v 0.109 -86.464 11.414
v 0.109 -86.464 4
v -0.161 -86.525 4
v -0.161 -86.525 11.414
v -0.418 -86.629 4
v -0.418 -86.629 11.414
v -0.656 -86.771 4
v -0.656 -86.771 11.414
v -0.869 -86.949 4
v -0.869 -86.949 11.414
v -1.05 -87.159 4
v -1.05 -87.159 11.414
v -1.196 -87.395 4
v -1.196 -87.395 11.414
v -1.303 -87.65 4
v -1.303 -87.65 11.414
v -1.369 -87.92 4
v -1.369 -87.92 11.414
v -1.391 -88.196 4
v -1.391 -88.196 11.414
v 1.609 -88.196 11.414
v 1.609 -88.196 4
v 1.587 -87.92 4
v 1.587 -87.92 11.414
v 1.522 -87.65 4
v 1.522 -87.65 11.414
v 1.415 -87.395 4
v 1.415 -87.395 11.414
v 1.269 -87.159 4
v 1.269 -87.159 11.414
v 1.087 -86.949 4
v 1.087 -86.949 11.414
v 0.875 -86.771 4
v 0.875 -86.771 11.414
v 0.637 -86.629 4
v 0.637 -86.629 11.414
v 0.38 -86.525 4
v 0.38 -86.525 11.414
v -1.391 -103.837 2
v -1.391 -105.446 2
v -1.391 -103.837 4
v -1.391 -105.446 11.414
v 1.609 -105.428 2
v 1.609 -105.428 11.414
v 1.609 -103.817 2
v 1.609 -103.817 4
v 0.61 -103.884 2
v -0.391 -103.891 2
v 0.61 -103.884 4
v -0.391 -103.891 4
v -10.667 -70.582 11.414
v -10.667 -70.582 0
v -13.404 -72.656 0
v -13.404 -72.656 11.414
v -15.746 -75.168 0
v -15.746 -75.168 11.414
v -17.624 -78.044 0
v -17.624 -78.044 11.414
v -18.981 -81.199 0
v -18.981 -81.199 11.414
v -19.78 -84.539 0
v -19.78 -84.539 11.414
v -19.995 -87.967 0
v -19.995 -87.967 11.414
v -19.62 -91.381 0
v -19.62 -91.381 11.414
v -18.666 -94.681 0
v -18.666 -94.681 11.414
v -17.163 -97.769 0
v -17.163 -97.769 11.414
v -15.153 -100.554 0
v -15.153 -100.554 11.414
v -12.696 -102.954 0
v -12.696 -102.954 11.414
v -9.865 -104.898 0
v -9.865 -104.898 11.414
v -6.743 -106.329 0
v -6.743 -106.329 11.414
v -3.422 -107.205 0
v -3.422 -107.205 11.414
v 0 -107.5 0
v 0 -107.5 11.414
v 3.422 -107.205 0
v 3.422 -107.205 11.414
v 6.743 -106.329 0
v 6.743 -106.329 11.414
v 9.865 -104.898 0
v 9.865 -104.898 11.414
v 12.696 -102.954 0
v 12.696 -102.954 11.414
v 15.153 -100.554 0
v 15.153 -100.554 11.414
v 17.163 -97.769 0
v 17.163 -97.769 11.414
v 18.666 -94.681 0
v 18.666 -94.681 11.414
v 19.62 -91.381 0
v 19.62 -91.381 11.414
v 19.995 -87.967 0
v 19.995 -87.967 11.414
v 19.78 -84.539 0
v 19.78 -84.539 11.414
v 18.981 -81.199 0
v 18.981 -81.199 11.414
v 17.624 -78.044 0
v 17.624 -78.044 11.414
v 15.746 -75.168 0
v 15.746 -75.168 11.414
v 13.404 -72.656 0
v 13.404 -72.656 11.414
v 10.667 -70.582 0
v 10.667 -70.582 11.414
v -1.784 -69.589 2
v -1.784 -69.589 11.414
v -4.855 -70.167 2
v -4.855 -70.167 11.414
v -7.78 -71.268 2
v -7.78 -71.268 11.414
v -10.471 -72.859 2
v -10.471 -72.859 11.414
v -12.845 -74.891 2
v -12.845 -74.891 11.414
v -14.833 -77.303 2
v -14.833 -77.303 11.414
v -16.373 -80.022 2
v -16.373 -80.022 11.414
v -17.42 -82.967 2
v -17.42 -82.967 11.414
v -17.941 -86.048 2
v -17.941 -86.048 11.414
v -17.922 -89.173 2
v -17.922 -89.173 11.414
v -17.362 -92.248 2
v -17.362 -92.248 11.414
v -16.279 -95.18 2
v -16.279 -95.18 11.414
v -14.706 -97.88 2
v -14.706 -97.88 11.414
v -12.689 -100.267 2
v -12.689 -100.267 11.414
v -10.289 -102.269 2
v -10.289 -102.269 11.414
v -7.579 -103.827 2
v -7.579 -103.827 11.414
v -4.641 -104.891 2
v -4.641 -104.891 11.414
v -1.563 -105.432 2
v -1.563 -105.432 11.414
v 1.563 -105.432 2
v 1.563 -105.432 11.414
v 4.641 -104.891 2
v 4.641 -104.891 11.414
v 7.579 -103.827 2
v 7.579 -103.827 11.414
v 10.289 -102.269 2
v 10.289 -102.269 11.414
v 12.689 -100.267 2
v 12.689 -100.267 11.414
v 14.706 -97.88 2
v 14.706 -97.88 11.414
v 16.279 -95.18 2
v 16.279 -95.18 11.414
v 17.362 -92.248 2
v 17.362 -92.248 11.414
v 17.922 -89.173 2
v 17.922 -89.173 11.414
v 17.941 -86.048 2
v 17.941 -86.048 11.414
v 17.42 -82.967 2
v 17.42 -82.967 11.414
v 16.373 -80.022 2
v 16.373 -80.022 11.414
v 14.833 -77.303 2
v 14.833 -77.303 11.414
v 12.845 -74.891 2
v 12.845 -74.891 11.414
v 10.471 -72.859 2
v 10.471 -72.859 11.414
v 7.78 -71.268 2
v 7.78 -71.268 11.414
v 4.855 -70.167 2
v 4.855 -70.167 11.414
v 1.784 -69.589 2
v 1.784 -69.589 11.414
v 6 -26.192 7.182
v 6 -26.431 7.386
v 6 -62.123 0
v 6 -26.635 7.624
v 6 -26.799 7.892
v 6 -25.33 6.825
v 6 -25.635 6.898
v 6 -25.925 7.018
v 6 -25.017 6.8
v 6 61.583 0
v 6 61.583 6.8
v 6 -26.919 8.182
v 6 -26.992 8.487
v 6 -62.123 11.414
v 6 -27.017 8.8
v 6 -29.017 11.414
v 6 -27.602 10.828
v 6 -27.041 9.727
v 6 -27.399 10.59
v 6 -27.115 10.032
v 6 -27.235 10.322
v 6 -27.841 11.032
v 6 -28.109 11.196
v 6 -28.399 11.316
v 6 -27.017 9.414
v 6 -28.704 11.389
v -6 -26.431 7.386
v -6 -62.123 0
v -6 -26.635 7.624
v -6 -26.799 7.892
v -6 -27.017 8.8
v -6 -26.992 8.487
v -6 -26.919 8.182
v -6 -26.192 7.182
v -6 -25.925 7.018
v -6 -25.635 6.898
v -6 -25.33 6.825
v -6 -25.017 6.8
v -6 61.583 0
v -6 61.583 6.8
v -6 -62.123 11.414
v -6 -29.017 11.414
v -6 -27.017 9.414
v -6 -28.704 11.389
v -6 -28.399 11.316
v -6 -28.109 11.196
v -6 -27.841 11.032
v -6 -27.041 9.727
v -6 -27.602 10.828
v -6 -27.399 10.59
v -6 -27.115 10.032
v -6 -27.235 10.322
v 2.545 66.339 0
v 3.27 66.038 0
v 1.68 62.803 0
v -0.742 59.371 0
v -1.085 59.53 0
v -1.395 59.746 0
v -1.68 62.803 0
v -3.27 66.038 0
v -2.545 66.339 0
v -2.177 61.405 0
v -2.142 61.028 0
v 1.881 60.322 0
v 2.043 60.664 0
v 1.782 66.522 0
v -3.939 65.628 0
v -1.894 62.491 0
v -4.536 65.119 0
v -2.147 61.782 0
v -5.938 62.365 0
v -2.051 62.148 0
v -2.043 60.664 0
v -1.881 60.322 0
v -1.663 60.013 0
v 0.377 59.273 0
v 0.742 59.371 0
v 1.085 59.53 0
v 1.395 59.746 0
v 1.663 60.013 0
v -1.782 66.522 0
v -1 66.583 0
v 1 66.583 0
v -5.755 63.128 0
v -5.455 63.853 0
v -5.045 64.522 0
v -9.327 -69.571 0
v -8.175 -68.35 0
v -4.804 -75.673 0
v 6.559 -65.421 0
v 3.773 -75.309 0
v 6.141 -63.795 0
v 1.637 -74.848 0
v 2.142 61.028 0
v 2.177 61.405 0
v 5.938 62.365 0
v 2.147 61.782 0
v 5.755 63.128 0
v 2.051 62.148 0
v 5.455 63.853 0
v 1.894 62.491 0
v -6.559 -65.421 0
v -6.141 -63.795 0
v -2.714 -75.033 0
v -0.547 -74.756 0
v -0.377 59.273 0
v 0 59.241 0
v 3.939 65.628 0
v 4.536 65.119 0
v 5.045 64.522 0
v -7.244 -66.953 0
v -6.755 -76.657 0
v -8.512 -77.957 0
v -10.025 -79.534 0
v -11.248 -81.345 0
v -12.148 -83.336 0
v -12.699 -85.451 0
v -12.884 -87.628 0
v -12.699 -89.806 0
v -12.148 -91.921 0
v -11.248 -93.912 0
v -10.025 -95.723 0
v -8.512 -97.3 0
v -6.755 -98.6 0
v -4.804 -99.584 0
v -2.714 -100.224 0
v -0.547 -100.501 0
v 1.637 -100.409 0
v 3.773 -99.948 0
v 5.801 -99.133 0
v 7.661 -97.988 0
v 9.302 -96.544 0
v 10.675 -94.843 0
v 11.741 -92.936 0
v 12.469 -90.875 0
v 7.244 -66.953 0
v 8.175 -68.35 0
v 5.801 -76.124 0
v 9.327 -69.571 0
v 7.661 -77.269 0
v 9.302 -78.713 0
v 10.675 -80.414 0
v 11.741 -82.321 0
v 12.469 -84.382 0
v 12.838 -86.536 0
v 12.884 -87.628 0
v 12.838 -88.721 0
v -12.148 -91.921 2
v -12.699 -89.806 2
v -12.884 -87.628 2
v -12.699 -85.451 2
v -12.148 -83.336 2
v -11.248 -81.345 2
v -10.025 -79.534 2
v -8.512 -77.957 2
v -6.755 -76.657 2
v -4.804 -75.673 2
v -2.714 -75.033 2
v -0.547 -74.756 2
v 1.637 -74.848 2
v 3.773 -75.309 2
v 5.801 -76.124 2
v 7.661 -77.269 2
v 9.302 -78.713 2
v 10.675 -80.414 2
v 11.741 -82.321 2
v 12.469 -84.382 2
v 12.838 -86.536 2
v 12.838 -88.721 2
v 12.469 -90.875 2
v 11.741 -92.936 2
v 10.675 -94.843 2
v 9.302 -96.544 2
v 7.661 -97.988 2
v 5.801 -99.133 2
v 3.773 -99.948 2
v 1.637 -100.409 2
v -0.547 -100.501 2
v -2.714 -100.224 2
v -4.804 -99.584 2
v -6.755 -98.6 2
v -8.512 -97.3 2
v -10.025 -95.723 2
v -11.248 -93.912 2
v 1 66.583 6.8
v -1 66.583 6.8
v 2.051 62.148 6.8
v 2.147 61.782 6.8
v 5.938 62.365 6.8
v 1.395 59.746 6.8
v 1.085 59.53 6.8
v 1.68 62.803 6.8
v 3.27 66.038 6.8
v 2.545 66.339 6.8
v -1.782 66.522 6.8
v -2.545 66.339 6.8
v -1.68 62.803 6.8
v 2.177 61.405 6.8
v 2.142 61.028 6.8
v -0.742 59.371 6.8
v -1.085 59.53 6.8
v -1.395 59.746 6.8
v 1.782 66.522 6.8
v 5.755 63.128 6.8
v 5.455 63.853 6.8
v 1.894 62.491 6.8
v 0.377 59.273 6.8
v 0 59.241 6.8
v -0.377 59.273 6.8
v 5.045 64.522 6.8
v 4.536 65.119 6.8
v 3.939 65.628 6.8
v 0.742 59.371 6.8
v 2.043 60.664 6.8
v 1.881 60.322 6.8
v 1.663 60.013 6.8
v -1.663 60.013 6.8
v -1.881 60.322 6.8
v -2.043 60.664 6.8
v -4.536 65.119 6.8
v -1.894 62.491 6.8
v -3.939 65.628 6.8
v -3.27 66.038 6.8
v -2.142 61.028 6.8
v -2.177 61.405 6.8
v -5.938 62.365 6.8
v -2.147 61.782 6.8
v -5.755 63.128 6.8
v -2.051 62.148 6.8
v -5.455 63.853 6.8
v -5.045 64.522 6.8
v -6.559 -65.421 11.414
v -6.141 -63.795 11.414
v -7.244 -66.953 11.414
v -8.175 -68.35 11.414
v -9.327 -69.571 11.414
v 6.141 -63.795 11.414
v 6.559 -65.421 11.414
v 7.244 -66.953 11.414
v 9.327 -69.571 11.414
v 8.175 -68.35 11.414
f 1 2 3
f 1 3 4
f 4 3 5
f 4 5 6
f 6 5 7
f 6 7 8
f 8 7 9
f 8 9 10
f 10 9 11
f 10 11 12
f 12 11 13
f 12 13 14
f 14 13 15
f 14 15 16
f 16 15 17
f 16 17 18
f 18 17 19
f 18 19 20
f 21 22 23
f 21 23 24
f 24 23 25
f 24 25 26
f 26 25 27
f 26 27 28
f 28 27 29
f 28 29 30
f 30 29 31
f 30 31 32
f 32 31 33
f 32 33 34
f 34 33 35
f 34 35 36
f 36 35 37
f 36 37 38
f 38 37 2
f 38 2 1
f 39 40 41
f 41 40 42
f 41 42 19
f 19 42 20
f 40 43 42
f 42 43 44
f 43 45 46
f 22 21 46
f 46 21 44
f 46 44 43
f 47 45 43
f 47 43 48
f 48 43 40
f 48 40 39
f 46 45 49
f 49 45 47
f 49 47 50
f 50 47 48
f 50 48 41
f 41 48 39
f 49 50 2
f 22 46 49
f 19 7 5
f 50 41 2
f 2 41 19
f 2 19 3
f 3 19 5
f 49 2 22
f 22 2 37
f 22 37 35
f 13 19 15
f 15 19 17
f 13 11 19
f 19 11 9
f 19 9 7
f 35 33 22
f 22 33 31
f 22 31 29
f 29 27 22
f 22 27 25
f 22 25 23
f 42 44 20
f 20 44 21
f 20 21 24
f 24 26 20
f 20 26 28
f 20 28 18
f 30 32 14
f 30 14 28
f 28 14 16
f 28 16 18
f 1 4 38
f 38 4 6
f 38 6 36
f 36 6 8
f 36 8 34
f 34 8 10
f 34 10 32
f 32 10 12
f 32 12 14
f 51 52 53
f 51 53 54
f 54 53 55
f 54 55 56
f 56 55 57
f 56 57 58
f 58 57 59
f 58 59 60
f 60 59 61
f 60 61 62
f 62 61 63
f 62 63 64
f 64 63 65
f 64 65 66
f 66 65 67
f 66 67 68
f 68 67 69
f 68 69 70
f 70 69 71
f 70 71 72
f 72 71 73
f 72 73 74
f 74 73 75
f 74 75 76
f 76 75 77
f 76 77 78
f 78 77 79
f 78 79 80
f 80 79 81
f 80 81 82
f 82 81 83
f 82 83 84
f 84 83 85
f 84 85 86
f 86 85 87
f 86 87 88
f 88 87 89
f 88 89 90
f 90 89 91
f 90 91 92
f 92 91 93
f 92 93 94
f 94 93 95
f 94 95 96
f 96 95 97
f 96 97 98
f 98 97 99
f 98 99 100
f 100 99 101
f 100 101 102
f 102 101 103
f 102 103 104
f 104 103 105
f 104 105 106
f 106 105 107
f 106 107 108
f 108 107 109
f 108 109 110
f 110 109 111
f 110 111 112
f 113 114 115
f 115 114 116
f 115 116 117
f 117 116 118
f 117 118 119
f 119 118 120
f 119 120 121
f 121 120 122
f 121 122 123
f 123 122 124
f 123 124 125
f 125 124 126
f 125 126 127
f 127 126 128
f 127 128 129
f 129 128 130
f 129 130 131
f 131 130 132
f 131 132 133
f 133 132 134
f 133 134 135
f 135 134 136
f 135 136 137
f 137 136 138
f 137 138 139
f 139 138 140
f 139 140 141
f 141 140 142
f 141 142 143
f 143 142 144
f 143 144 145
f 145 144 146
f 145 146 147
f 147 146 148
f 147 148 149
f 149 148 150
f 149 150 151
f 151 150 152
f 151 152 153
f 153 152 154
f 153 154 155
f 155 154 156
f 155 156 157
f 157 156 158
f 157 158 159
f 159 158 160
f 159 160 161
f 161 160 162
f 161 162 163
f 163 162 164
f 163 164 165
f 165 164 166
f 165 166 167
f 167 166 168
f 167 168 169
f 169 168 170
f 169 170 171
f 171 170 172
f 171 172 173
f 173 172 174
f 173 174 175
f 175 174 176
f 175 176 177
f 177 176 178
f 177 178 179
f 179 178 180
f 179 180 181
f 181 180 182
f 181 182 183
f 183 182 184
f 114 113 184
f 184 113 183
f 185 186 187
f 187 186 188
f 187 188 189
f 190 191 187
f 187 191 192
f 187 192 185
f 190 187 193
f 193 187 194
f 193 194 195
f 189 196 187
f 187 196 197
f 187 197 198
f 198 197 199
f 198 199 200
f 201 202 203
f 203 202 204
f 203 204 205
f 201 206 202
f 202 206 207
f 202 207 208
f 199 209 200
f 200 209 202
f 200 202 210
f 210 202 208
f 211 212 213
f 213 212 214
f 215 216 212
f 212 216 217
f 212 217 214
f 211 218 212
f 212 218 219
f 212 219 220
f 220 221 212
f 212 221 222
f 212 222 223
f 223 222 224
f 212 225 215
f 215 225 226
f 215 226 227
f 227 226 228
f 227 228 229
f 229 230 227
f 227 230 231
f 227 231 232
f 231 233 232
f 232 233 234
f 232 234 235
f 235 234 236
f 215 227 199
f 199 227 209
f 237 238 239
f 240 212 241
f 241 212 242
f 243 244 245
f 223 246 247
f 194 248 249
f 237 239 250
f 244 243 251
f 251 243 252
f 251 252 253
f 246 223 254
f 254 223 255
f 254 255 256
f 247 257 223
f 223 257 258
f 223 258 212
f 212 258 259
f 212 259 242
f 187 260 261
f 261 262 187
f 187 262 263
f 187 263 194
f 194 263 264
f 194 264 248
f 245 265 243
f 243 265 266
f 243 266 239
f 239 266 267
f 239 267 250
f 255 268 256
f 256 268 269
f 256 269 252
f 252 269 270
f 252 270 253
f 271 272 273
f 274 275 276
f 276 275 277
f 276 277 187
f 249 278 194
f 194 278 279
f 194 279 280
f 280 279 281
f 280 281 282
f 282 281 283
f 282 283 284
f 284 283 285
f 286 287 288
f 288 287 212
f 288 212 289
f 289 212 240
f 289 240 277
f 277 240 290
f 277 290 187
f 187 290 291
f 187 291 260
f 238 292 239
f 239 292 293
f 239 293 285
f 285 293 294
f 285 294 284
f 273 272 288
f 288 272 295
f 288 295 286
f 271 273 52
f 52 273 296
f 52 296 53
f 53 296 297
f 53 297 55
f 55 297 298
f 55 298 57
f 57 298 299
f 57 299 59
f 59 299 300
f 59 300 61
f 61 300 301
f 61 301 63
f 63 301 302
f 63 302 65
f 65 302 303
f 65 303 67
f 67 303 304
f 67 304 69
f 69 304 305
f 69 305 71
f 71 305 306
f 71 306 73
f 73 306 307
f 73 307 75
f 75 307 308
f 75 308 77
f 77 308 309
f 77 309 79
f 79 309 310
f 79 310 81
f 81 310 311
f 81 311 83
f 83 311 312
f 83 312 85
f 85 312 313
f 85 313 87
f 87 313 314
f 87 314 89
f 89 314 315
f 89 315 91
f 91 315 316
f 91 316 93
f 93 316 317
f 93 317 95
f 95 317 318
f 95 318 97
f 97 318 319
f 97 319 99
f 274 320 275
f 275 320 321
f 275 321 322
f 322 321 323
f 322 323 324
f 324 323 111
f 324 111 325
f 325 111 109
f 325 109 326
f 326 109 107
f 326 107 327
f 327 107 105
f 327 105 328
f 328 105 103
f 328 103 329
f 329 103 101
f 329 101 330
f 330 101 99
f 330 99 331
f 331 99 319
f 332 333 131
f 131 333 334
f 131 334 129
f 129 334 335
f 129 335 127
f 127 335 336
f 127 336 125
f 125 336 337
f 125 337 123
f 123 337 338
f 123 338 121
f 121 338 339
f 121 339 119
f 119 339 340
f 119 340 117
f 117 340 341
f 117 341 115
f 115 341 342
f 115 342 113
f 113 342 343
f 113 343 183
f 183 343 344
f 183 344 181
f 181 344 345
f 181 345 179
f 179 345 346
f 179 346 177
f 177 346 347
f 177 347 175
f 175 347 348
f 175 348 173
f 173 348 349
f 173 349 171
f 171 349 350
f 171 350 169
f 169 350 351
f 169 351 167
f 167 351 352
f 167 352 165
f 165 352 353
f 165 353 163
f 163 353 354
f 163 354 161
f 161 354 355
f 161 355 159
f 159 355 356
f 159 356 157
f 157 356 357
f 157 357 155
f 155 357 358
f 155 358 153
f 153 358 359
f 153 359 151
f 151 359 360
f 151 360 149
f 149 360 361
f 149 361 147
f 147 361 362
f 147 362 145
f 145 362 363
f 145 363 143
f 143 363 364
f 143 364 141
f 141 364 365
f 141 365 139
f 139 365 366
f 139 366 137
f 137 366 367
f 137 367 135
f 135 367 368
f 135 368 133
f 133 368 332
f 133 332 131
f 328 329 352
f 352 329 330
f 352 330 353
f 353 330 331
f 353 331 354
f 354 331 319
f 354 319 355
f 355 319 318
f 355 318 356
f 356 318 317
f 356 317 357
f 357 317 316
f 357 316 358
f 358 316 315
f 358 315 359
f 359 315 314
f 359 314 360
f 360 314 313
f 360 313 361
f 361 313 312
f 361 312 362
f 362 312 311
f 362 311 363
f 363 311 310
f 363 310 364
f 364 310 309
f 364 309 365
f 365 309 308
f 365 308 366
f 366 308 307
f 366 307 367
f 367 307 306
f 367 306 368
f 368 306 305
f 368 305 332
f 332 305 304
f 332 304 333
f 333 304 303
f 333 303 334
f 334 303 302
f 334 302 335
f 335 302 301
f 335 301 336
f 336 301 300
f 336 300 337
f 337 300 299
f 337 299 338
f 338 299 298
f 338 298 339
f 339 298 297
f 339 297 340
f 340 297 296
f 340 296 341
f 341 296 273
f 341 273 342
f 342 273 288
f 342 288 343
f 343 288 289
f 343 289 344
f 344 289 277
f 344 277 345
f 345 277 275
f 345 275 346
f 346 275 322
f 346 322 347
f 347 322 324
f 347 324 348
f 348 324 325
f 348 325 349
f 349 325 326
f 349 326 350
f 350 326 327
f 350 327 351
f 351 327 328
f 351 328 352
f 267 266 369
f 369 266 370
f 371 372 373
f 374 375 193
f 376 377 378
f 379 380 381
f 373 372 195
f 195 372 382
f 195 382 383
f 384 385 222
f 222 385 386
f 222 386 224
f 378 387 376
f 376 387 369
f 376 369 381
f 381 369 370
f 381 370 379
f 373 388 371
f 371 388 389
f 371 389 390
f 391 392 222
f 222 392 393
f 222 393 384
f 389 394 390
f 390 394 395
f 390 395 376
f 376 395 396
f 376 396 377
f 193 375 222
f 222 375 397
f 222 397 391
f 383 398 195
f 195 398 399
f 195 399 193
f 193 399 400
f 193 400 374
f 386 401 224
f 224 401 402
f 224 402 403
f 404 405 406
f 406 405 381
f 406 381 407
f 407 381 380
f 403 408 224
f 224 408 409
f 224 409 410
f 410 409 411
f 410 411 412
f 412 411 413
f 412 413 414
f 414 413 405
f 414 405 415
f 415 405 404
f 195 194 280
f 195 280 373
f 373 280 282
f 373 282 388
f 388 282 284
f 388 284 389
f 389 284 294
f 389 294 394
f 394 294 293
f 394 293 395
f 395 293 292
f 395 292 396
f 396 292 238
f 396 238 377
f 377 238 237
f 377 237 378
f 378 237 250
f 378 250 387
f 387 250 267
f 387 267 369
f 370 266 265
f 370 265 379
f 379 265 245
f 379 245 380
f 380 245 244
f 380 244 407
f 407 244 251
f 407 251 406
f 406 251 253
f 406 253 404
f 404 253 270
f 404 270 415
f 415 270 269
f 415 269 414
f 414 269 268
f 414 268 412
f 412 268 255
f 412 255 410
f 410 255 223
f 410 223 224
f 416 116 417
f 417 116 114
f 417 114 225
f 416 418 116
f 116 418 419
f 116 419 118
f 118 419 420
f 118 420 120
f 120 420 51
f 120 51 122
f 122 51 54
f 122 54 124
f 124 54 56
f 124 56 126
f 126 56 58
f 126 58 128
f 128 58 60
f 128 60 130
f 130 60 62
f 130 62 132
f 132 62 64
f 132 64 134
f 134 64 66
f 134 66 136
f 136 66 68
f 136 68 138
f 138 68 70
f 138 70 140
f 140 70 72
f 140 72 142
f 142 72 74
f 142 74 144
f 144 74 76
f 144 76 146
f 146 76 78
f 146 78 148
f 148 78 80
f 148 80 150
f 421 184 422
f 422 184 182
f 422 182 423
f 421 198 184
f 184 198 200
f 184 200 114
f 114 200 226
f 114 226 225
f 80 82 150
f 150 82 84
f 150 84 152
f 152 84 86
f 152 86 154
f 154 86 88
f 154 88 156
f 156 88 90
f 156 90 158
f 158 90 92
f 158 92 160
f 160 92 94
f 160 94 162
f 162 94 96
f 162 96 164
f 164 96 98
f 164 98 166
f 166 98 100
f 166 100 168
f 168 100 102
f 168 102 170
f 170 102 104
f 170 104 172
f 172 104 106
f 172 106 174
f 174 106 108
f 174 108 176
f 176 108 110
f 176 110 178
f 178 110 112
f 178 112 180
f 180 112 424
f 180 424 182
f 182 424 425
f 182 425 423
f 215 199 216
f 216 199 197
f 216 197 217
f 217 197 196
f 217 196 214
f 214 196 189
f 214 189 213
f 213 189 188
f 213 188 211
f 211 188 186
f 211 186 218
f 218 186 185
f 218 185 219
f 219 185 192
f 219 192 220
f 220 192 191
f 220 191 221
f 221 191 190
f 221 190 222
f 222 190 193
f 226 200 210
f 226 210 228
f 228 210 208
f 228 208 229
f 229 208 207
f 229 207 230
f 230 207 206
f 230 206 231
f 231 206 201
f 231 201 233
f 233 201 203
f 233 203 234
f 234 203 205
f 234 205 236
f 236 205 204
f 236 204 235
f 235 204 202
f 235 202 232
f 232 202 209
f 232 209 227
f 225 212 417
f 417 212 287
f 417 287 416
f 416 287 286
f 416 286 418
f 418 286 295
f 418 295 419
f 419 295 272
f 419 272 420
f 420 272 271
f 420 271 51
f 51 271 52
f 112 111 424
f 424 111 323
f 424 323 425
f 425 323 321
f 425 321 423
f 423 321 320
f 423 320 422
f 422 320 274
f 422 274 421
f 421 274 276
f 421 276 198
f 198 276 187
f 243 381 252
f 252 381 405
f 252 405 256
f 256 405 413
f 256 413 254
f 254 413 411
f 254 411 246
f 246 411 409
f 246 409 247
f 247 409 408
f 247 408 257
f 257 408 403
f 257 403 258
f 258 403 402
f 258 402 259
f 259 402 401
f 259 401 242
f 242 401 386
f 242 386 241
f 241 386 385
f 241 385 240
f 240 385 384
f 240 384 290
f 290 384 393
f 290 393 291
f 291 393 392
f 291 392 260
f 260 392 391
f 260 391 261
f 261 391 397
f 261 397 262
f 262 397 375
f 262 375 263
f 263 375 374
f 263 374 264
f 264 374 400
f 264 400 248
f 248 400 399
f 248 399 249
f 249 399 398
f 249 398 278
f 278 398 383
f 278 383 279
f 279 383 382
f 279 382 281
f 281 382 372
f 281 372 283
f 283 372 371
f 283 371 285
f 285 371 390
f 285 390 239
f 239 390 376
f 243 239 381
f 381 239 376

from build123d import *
from build123d.topology import SkipClean

# Parameters (mm, degrees)
BOSS_EXTRUDE1_DEPTH      = 13
BOSS_EXTRUDE1_2_DEPTH    = 13
BOSS_EXTRUDE2_DEPTH      = 13
CUT_EXTRUDE1_DEPTH       = 13
SKETCH3_W                = 6.626848164
SKETCH3_H                = 19.420298156
CUT_EXTRUDE2_DEPTH       = 13
FILLET1_R                = 10
SKETCH4_R                = 20
BOSS_EXTRUDE3_DEPTH      = 13
CUT_EXTRUDE3_DEPTH       = 13
SKETCH6_R                = 18
CUT_EXTRUDE4_DEPTH       = 24
BOSS_EXTRUDE7_DEPTH      = 22
FILLET5_R                = 1.75
FILLET6_R                = 20
SKETCH13_W               = 6.626848164
SKETCH13_H               = 84.326545424
CUT_EXTRUDE8_DEPTH       = 22
FILLET8_R                = 21.5
FILLET9_R                = 21.5
SKETCH14_W               = 17.060891399
SKETCH14_H               = 46.716771418
CUT_EXTRUDE10_DEPTH      = 22
SKETCH23_R               = 16.395826628
CUT_EXTRUDE14_DEPTH      = 4
BOSS_EXTRUDE16_DEPTH     = 2
SKETCH25_R               = 20.128500803
CUT_EXTRUDE15_DEPTH      = 9
SKETCH26_W               = 8.848519257
SKETCH26_H               = 26
CUT_EXTRUDE16_DEPTH      = 9
CUT_EXTRUDE17_DEPTH      = 9
FILLET21_R               = 3.5
SKETCH28_W               = 12
SKETCH28_H               = 42.572003563
BOSS_EXTRUDE20_DEPTH     = 15.8
BOSS_EXTRUDE21_START     = -6.8
SKETCH30_W               = 12
SKETCH30_H               = 93.599870645
BOSS_EXTRUDE21_DEPTH     = 6.8
FILLET23_R               = 5
BOSS_EXTRUDE22_DEPTH     = 6.8
CUT_EXTRUDE18_DEPTH      = 29
CUT_EXTRUDE18_DEPTH_BACK = 41
SKETCH34_W               = 5.585914081
SKETCH34_H               = 80.48337208
FILLET27_R               = 2
FILLET28_R               = 10
BOSS_EXTRUDE24_DEPTH     = 6.8


with BuildPart() as part:
    # Sketch1 → Boss-Extrude1 (new body)
    with BuildSketch(Plane.XY):
        with BuildLine():
            Line((4, -87.5), (-4, -87.5))
            Line((-4, -87.5), (-4, -67.904082058))
            ThreePointArc((-4, -67.904082058), (0, -107.5), (4, -67.904082058))
            Line((4, -67.904082058), (4, -87.5))
        make_face()
    extrude(amount=BOSS_EXTRUDE1_DEPTH)



with BuildPart() as body_2:
    # Sketch1 → Boss-Extrude1 2 (new body)
    with BuildSketch(Plane.XY):
        with BuildLine():
            Line((-4, 87.5), (-4, -67.904082058))
            ThreePointArc((-4, -67.904082058), (0, -67.5), (4, -67.904082058))
            Line((4, -67.904082058), (4, 87.5))
            ThreePointArc((4, 87.5), (0, 91.5), (-4, 87.5))
        make_face()
    extrude(amount=BOSS_EXTRUDE1_2_DEPTH)


with BuildPart() as part_1:
    add(part.part)

    add(body_2.part)  # Boss-Extrude2 merges body 2
    # Sketch1<3> → Boss-Extrude2 (add)
    with BuildSketch(Plane.XY):
        with BuildLine():
            Line((-4, -67.904082058), (-4, -87.5))
            Line((-4, -87.5), (4, -87.5))
            Line((4, -87.5), (4, -67.904082058))
            ThreePointArc((4, -67.904082058), (0, -67.5), (-4, -67.904082058))
        make_face()
        with BuildLine():
            Line((4, -87.5), (-4, -87.5))
            Line((-4, -87.5), (-4, -67.904082058))
            ThreePointArc((-4, -67.904082058), (-12.649110641, -102.991933385), (20, -87.5))
            ThreePointArc((20, -87.5), (15.491933385, -74.850889359), (4, -67.904082058))
            Line((4, -67.904082058), (4, -87.5))
        make_face()
    extrude(amount=BOSS_EXTRUDE2_DEPTH)

    # Sketch2 → Cut-Extrude1 (cut)
    with BuildSketch(Plane.XY.offset(13)):
        with BuildLine():
            Line((1.836704547, 90.02826846), (-1.836704547, 90.02826846))
            ThreePointArc((-1.836704547, 90.02826846), (-1.418788795, 84.715639507), (3.125, 87.5))
            ThreePointArc((3.125, 87.5), (2.784360493, 88.918788795), (1.836704547, 90.02826846))
        make_face()
    extrude(amount=-CUT_EXTRUDE1_DEPTH, mode=Mode.SUBTRACT)

    # Sketch3 → Cut-Extrude2 (cut)
    with BuildSketch(Plane(origin=(4, 0, 0), x_dir=(0, 0, -1), z_dir=(1, 0, 0))):
        with Locations((-9.686575918, 81.789850922)):
            Rectangle(SKETCH3_W, SKETCH3_H)
    extrude(amount=-CUT_EXTRUDE2_DEPTH, mode=Mode.SUBTRACT)

    # Fillet1
    # the kernel refuses this fillet: 10 mm, written as the material it adds along each edge
    with BuildSketch(Plane(origin=(4, 72.079701844, 6.373151836), x_dir=(0, 1, 0), z_dir=(-1, 0, 0))) as fillet1_piece_1:
        with BuildLine():
            CenterArc((9.413917712, -10), FILLET1_R, 90, 70.286615286)
            Line((0, -6.626848164), (-0.188278354, -6.559385127))
            ThreePointArc((-0.188278354, -6.559385127), (-0.2, -3.313424082), (-0.2, 0))
            Line((-0.2, 0), (0, 0.2))
            Line((0, 0.2), (9.413917712, 0.2))
            Line((9.413917712, 0.2), (9.413917712, 0))
        make_face()
    extrude(amount=8)

    # Sketch4 → Boss-Extrude3 (add)
    with BuildSketch(Plane.XY.offset(13)):
        with Locations(Location((0, -87.5, 0), (0, 0, 101.536959033))):
            Circle(SKETCH4_R)
    extrude(amount=BOSS_EXTRUDE3_DEPTH)

    # Sketch5 → Cut-Extrude3 (cut)
    with BuildSketch(Plane(origin=(4, 0, 0), x_dir=(0, 0, -1), z_dir=(1, 0, 0))):
        with BuildLine():
            Line((-13, 61.057159029), (-13, 87.5))
            Line((-13, 87.5), (-6.373151836, 87.5))
            ThreePointArc((-6.373151836, 87.5), (-7.529351989, 73.73795699), (-13, 61.057159029))
        make_face()
    extrude(amount=-CUT_EXTRUDE3_DEPTH, mode=Mode.SUBTRACT)

    # Sketch6 → Cut-Extrude4 (cut)
    with BuildSketch(Plane.XY.offset(26)):
        with Locations((0, -87.5)):
            Circle(SKETCH6_R)
    extrude(amount=-CUT_EXTRUDE4_DEPTH, mode=Mode.SUBTRACT)

    # Fillet6
    fillet6_edges = [part_1.edges().sort_by_distance(p)[0] for p in [
        (0, 61.057159029, 13),
    ]]
    fillet(fillet6_edges, radius=FILLET6_R)

    # Sketch13 → Cut-Extrude8 (cut)
    with BuildSketch(Plane.ZY.offset(4)):
        with Locations((9.686575918, 45.336727288)):
            Rectangle(SKETCH13_W, SKETCH13_H)
    extrude(amount=-CUT_EXTRUDE8_DEPTH, mode=Mode.SUBTRACT)

    # Fillet8
    # the kernel refuses this fillet: 21.5 mm, written as the material it adds along each edge
    with BuildSketch(Plane(origin=(-4, 3.173454576, 6.373151836), x_dir=(0, 1, 0), z_dir=(1, 0, 0))) as fillet8_piece_1:
        with BuildLine():
            CenterArc((15.525442166, 21.5), FILLET8_R, 223.770740898, 46.229259102)
            Line((0, 6.626848164), (-0.310508843, 6.329385127))
            ThreePointArc((-0.310508843, 6.329385127), (-0.43, 3.313424082), (-0.43, 0))
            Line((-0.43, 0), (0, -0.43))
            Line((0, -0.43), (15.525442166, -0.43))
            Line((15.525442166, -0.43), (15.525442166, 0))
        make_face()
    extrude(amount=8)

    # Fillet9
    fillet9_edges = [part_1.edges().sort_by_distance(p)[0] for p in [
        (0, 3.173454576, 13),
    ]]
    fillet(fillet9_edges, radius=FILLET9_R)

    # Sketch14 → Cut-Extrude10 (cut)
    with BuildSketch(Plane.ZY.offset(4)):
        with Locations((14.903597536, -4.659488967)):
            Rectangle(SKETCH14_W, SKETCH14_H)
    extrude(amount=-CUT_EXTRUDE10_DEPTH, mode=Mode.SUBTRACT)


with BuildPart() as body_2_2:
    # Sketch8 → Boss-Extrude7 (new body)
    with BuildSketch(Plane.XY.offset(2)):
        Polygon((-1.390650573, -105.446199904), (-1.390650573, -86.446199904), (1.609349427, -86.446199904), (1.609349427, -105.427911045), align=None)
    extrude(amount=BOSS_EXTRUDE7_DEPTH)

    # Fillet5
    # the kernel refuses this fillet: 1.75 mm, written as the material it takes off along each edge
    with BuildSketch(Plane(origin=(1.609349427, -86.446199904, -2.375), x_dir=(-1, 0, 0), z_dir=(0, 0, 1)), Plane(origin=(-1.390650573, -86.446199904, -2.375), x_dir=(0, -1, 0), z_dir=(0, 0, 1))) as fillet5_piece_1:
        with BuildLine():
            CenterArc((FILLET5_R, FILLET5_R), FILLET5_R, 180, 90)
            Line((0, FILLET5_R), (0, 0))
            Line((0, 0), (FILLET5_R, 0))
        make_face()
    extrude(amount=30.75, mode=Mode.SUBTRACT)


with BuildPart() as cut_extrude14_tool:
    # Sketch23 → Cut-Extrude14 (new body)
    with BuildSketch(Plane(origin=(0, 0, 0), x_dir=(-1, 0, 0), z_dir=(0, 0, -1))):
        with Locations((0, -87.5)):
            Circle(SKETCH23_R)
    extrude(amount=-CUT_EXTRUDE14_DEPTH)


with BuildPart() as part_2:
    add(part_1.part)

    # Cut-Extrude14: cut by cut_extrude14_tool
    add(cut_extrude14_tool.part, mode=Mode.SUBTRACT)

    # Sketch24 → Boss-Extrude16 (add)
    with BuildSketch(Plane(origin=(0, 0, 0), x_dir=(-1, 0, 0), z_dir=(0, 0, -1))):
        with BuildLine():
            ThreePointArc((0, -71.104173372), (-16.395826628, -87.5), (0, -103.895826628))
            ThreePointArc((0, -103.895826628), (16.395826628, -87.5), (0, -71.104173372))
        make_face()
        with BuildLine():
            ThreePointArc((0, -74.744099259), (12.884401545, -87.628500803), (0, -100.512902348))
            ThreePointArc((0, -100.512902348), (-12.884401545, -87.628500803), (0, -74.744099259))
        make_face(mode=Mode.SUBTRACT)
    extrude(amount=-BOSS_EXTRUDE16_DEPTH)


with BuildPart() as body_2_2_1:
    add(body_2_2.part)

    # Cut-Extrude14: cut by cut_extrude14_tool
    add(cut_extrude14_tool.part, mode=Mode.SUBTRACT)


with BuildPart() as cut_extrude15_tool:
    # Sketch25 → Cut-Extrude15 (new body)
    with BuildSketch(Plane.XY.offset(26)):
        with Locations((0, -87.628500803)):
            Circle(SKETCH25_R)
    extrude(amount=-CUT_EXTRUDE15_DEPTH)


with BuildPart() as part_3:
    add(part_2.part)

    # Cut-Extrude15: cut by cut_extrude15_tool
    add(cut_extrude15_tool.part, mode=Mode.SUBTRACT)

    # Sketch26 → Cut-Extrude16 (cut)
    with BuildSketch(Plane.XY.offset(6.373151836)):
        with Locations((0.424259629, 79.373396417)):
            Rectangle(SKETCH26_W, SKETCH26_H)
    extrude(amount=-CUT_EXTRUDE16_DEPTH, mode=Mode.SUBTRACT)

    # Sketch27 → Cut-Extrude17 (cut)
    with BuildSketch(Plane.XY.offset(6.373151836)):
        with BuildLine():
            Line((2.132304127, 63.840504789), (-2.132304127, 63.840504789))
            ThreePointArc((-2.132304127, 63.840504789), (-1.329315567, 58.476984755), (3.22736468, 61.417869469))
            ThreePointArc((3.22736468, 61.417869469), (2.940884714, 62.747185037), (2.132304127, 63.840504789))
        make_face()
    extrude(amount=-CUT_EXTRUDE17_DEPTH, mode=Mode.SUBTRACT)

    # Fillet21
    fillet21_edges = [part_3.edges().sort_by_distance(p)[0] for p in [
        (4, 66.373396417, 3.186575918),
        (-4, 66.373396417, 3.186575918),
    ]]
    fillet(fillet21_edges, radius=FILLET21_R)

    # Sketch28 → Boss-Extrude20 (add)
    with BuildSketch(Plane(origin=(0, 0, 0), x_dir=(-1, 0, 0), z_dir=(0, 0, -1))):
        with Locations((0, -48.302629702)):
            Rectangle(SKETCH28_W, SKETCH28_H)
    extrude(amount=-BOSS_EXTRUDE20_DEPTH)

    # Sketch30 → Boss-Extrude21 (add)
    with SkipClean():  # the faces are left unmerged after this step: merging them gives an invalid solid
        with BuildSketch(Plane(origin=(0, 0, 0), x_dir=(-1, 0, 0), z_dir=(0, 0, -1)).offset(BOSS_EXTRUDE21_START)):
            with Locations((0, 19.783307403)):
                Rectangle(SKETCH30_W, SKETCH30_H)
            with BuildLine():
                Line((2.132304127, 63.840504789), (-2.132304127, 63.840504789))
                ThreePointArc((-2.132304127, 63.840504789), (0, 58.190504789), (2.132304127, 63.840504789))
            make_face(mode=Mode.SUBTRACT)
        extrude(amount=BOSS_EXTRUDE21_DEPTH)

    # Fillet23
    fillet23_edges = [part_3.edges().sort_by_distance(p)[0] for p in [
        (6, 66.583242725, 3.4),
        (-6, 66.583242725, 3.4),
    ]]
    fillet(fillet23_edges, radius=FILLET23_R)

    # Sketch33 → Boss-Extrude22 (add)
    with BuildSketch(Plane.XY.offset(6.8)):
        with BuildLine():
            Line((-2.132304127, 63.840504789), (2.132304127, 63.840504789))
            ThreePointArc((2.132304127, 63.840504789), (0, 58.190504789), (-2.132304127, 63.840504789))
        make_face()
        with BuildLine():
            Line((-2.09926937, 63.802972072), (2.09926937, 63.802972072))
            ThreePointArc((2.09926937, 63.802972072), (0, 58.240504789), (-2.09926937, 63.802972072))
        make_face(mode=Mode.SUBTRACT)
    extrude(amount=-BOSS_EXTRUDE22_DEPTH)


with BuildPart() as body_2_2_2:
    add(body_2_2_1.part)

    # Cut-Extrude15: cut by cut_extrude15_tool
    add(cut_extrude15_tool.part, mode=Mode.SUBTRACT)


with BuildPart() as cut_extrude18_tool:
    # Sketch34 → Cut-Extrude18 (new, two sides: drawn at the far end of the back side and taken through both)
    with BuildSketch(Plane.ZY.offset(6).offset(-CUT_EXTRUDE18_DEPTH_BACK)):
        with Locations((14.20704296, -67.25831396)):
            Rectangle(SKETCH34_W, SKETCH34_H)
    extrude(amount=CUT_EXTRUDE18_DEPTH + CUT_EXTRUDE18_DEPTH_BACK)


with BuildPart() as part_4:
    add(part_3.part)

    # Cut-Extrude18: cut by cut_extrude18_tool
    add(cut_extrude18_tool.part, mode=Mode.SUBTRACT)

    # Fillet27
    fillet27_edges = [part_4.edges().sort_by_distance(p)[0] for p in [
        (0, -27.01662792, 6.8),
        (0, -27.01662792, 11.414085919),
    ]]
    fillet(fillet27_edges, radius=FILLET27_R)

    # Fillet28
    fillet28_edges = [part_4.edges().sort_by_distance(p)[0] for p in [
        (6, -68.421215972, 5.707042959),
        (-6, -68.421215972, 5.707042959),
    ]]
    fillet(fillet28_edges, radius=FILLET28_R)

    # Sketch35 → Boss-Extrude24 (add)
    with BuildSketch(Plane.XY.offset(6.8)):
        with BuildLine():
            Line((2.09926937, 63.802972072), (-2.09926937, 63.802972072))
            ThreePointArc((-2.09926937, 63.802972072), (0, 58.240504789), (2.09926937, 63.802972072))
        make_face()
        with BuildLine():
            Line((1.680002301, 62.802972072), (-1.680002301, 62.802972072))
            ThreePointArc((-1.680002301, 62.802972072), (0, 59.240504789), (1.680002301, 62.802972072))
        make_face(mode=Mode.SUBTRACT)
    extrude(amount=-BOSS_EXTRUDE24_DEPTH)


with BuildPart() as body_2_2_3:
    add(body_2_2_2.part)

    # Cut-Extrude18: cut by cut_extrude18_tool
    add(cut_extrude18_tool.part, mode=Mode.SUBTRACT)


solid = Compound([part_4.part, body_2_2_3.part])
